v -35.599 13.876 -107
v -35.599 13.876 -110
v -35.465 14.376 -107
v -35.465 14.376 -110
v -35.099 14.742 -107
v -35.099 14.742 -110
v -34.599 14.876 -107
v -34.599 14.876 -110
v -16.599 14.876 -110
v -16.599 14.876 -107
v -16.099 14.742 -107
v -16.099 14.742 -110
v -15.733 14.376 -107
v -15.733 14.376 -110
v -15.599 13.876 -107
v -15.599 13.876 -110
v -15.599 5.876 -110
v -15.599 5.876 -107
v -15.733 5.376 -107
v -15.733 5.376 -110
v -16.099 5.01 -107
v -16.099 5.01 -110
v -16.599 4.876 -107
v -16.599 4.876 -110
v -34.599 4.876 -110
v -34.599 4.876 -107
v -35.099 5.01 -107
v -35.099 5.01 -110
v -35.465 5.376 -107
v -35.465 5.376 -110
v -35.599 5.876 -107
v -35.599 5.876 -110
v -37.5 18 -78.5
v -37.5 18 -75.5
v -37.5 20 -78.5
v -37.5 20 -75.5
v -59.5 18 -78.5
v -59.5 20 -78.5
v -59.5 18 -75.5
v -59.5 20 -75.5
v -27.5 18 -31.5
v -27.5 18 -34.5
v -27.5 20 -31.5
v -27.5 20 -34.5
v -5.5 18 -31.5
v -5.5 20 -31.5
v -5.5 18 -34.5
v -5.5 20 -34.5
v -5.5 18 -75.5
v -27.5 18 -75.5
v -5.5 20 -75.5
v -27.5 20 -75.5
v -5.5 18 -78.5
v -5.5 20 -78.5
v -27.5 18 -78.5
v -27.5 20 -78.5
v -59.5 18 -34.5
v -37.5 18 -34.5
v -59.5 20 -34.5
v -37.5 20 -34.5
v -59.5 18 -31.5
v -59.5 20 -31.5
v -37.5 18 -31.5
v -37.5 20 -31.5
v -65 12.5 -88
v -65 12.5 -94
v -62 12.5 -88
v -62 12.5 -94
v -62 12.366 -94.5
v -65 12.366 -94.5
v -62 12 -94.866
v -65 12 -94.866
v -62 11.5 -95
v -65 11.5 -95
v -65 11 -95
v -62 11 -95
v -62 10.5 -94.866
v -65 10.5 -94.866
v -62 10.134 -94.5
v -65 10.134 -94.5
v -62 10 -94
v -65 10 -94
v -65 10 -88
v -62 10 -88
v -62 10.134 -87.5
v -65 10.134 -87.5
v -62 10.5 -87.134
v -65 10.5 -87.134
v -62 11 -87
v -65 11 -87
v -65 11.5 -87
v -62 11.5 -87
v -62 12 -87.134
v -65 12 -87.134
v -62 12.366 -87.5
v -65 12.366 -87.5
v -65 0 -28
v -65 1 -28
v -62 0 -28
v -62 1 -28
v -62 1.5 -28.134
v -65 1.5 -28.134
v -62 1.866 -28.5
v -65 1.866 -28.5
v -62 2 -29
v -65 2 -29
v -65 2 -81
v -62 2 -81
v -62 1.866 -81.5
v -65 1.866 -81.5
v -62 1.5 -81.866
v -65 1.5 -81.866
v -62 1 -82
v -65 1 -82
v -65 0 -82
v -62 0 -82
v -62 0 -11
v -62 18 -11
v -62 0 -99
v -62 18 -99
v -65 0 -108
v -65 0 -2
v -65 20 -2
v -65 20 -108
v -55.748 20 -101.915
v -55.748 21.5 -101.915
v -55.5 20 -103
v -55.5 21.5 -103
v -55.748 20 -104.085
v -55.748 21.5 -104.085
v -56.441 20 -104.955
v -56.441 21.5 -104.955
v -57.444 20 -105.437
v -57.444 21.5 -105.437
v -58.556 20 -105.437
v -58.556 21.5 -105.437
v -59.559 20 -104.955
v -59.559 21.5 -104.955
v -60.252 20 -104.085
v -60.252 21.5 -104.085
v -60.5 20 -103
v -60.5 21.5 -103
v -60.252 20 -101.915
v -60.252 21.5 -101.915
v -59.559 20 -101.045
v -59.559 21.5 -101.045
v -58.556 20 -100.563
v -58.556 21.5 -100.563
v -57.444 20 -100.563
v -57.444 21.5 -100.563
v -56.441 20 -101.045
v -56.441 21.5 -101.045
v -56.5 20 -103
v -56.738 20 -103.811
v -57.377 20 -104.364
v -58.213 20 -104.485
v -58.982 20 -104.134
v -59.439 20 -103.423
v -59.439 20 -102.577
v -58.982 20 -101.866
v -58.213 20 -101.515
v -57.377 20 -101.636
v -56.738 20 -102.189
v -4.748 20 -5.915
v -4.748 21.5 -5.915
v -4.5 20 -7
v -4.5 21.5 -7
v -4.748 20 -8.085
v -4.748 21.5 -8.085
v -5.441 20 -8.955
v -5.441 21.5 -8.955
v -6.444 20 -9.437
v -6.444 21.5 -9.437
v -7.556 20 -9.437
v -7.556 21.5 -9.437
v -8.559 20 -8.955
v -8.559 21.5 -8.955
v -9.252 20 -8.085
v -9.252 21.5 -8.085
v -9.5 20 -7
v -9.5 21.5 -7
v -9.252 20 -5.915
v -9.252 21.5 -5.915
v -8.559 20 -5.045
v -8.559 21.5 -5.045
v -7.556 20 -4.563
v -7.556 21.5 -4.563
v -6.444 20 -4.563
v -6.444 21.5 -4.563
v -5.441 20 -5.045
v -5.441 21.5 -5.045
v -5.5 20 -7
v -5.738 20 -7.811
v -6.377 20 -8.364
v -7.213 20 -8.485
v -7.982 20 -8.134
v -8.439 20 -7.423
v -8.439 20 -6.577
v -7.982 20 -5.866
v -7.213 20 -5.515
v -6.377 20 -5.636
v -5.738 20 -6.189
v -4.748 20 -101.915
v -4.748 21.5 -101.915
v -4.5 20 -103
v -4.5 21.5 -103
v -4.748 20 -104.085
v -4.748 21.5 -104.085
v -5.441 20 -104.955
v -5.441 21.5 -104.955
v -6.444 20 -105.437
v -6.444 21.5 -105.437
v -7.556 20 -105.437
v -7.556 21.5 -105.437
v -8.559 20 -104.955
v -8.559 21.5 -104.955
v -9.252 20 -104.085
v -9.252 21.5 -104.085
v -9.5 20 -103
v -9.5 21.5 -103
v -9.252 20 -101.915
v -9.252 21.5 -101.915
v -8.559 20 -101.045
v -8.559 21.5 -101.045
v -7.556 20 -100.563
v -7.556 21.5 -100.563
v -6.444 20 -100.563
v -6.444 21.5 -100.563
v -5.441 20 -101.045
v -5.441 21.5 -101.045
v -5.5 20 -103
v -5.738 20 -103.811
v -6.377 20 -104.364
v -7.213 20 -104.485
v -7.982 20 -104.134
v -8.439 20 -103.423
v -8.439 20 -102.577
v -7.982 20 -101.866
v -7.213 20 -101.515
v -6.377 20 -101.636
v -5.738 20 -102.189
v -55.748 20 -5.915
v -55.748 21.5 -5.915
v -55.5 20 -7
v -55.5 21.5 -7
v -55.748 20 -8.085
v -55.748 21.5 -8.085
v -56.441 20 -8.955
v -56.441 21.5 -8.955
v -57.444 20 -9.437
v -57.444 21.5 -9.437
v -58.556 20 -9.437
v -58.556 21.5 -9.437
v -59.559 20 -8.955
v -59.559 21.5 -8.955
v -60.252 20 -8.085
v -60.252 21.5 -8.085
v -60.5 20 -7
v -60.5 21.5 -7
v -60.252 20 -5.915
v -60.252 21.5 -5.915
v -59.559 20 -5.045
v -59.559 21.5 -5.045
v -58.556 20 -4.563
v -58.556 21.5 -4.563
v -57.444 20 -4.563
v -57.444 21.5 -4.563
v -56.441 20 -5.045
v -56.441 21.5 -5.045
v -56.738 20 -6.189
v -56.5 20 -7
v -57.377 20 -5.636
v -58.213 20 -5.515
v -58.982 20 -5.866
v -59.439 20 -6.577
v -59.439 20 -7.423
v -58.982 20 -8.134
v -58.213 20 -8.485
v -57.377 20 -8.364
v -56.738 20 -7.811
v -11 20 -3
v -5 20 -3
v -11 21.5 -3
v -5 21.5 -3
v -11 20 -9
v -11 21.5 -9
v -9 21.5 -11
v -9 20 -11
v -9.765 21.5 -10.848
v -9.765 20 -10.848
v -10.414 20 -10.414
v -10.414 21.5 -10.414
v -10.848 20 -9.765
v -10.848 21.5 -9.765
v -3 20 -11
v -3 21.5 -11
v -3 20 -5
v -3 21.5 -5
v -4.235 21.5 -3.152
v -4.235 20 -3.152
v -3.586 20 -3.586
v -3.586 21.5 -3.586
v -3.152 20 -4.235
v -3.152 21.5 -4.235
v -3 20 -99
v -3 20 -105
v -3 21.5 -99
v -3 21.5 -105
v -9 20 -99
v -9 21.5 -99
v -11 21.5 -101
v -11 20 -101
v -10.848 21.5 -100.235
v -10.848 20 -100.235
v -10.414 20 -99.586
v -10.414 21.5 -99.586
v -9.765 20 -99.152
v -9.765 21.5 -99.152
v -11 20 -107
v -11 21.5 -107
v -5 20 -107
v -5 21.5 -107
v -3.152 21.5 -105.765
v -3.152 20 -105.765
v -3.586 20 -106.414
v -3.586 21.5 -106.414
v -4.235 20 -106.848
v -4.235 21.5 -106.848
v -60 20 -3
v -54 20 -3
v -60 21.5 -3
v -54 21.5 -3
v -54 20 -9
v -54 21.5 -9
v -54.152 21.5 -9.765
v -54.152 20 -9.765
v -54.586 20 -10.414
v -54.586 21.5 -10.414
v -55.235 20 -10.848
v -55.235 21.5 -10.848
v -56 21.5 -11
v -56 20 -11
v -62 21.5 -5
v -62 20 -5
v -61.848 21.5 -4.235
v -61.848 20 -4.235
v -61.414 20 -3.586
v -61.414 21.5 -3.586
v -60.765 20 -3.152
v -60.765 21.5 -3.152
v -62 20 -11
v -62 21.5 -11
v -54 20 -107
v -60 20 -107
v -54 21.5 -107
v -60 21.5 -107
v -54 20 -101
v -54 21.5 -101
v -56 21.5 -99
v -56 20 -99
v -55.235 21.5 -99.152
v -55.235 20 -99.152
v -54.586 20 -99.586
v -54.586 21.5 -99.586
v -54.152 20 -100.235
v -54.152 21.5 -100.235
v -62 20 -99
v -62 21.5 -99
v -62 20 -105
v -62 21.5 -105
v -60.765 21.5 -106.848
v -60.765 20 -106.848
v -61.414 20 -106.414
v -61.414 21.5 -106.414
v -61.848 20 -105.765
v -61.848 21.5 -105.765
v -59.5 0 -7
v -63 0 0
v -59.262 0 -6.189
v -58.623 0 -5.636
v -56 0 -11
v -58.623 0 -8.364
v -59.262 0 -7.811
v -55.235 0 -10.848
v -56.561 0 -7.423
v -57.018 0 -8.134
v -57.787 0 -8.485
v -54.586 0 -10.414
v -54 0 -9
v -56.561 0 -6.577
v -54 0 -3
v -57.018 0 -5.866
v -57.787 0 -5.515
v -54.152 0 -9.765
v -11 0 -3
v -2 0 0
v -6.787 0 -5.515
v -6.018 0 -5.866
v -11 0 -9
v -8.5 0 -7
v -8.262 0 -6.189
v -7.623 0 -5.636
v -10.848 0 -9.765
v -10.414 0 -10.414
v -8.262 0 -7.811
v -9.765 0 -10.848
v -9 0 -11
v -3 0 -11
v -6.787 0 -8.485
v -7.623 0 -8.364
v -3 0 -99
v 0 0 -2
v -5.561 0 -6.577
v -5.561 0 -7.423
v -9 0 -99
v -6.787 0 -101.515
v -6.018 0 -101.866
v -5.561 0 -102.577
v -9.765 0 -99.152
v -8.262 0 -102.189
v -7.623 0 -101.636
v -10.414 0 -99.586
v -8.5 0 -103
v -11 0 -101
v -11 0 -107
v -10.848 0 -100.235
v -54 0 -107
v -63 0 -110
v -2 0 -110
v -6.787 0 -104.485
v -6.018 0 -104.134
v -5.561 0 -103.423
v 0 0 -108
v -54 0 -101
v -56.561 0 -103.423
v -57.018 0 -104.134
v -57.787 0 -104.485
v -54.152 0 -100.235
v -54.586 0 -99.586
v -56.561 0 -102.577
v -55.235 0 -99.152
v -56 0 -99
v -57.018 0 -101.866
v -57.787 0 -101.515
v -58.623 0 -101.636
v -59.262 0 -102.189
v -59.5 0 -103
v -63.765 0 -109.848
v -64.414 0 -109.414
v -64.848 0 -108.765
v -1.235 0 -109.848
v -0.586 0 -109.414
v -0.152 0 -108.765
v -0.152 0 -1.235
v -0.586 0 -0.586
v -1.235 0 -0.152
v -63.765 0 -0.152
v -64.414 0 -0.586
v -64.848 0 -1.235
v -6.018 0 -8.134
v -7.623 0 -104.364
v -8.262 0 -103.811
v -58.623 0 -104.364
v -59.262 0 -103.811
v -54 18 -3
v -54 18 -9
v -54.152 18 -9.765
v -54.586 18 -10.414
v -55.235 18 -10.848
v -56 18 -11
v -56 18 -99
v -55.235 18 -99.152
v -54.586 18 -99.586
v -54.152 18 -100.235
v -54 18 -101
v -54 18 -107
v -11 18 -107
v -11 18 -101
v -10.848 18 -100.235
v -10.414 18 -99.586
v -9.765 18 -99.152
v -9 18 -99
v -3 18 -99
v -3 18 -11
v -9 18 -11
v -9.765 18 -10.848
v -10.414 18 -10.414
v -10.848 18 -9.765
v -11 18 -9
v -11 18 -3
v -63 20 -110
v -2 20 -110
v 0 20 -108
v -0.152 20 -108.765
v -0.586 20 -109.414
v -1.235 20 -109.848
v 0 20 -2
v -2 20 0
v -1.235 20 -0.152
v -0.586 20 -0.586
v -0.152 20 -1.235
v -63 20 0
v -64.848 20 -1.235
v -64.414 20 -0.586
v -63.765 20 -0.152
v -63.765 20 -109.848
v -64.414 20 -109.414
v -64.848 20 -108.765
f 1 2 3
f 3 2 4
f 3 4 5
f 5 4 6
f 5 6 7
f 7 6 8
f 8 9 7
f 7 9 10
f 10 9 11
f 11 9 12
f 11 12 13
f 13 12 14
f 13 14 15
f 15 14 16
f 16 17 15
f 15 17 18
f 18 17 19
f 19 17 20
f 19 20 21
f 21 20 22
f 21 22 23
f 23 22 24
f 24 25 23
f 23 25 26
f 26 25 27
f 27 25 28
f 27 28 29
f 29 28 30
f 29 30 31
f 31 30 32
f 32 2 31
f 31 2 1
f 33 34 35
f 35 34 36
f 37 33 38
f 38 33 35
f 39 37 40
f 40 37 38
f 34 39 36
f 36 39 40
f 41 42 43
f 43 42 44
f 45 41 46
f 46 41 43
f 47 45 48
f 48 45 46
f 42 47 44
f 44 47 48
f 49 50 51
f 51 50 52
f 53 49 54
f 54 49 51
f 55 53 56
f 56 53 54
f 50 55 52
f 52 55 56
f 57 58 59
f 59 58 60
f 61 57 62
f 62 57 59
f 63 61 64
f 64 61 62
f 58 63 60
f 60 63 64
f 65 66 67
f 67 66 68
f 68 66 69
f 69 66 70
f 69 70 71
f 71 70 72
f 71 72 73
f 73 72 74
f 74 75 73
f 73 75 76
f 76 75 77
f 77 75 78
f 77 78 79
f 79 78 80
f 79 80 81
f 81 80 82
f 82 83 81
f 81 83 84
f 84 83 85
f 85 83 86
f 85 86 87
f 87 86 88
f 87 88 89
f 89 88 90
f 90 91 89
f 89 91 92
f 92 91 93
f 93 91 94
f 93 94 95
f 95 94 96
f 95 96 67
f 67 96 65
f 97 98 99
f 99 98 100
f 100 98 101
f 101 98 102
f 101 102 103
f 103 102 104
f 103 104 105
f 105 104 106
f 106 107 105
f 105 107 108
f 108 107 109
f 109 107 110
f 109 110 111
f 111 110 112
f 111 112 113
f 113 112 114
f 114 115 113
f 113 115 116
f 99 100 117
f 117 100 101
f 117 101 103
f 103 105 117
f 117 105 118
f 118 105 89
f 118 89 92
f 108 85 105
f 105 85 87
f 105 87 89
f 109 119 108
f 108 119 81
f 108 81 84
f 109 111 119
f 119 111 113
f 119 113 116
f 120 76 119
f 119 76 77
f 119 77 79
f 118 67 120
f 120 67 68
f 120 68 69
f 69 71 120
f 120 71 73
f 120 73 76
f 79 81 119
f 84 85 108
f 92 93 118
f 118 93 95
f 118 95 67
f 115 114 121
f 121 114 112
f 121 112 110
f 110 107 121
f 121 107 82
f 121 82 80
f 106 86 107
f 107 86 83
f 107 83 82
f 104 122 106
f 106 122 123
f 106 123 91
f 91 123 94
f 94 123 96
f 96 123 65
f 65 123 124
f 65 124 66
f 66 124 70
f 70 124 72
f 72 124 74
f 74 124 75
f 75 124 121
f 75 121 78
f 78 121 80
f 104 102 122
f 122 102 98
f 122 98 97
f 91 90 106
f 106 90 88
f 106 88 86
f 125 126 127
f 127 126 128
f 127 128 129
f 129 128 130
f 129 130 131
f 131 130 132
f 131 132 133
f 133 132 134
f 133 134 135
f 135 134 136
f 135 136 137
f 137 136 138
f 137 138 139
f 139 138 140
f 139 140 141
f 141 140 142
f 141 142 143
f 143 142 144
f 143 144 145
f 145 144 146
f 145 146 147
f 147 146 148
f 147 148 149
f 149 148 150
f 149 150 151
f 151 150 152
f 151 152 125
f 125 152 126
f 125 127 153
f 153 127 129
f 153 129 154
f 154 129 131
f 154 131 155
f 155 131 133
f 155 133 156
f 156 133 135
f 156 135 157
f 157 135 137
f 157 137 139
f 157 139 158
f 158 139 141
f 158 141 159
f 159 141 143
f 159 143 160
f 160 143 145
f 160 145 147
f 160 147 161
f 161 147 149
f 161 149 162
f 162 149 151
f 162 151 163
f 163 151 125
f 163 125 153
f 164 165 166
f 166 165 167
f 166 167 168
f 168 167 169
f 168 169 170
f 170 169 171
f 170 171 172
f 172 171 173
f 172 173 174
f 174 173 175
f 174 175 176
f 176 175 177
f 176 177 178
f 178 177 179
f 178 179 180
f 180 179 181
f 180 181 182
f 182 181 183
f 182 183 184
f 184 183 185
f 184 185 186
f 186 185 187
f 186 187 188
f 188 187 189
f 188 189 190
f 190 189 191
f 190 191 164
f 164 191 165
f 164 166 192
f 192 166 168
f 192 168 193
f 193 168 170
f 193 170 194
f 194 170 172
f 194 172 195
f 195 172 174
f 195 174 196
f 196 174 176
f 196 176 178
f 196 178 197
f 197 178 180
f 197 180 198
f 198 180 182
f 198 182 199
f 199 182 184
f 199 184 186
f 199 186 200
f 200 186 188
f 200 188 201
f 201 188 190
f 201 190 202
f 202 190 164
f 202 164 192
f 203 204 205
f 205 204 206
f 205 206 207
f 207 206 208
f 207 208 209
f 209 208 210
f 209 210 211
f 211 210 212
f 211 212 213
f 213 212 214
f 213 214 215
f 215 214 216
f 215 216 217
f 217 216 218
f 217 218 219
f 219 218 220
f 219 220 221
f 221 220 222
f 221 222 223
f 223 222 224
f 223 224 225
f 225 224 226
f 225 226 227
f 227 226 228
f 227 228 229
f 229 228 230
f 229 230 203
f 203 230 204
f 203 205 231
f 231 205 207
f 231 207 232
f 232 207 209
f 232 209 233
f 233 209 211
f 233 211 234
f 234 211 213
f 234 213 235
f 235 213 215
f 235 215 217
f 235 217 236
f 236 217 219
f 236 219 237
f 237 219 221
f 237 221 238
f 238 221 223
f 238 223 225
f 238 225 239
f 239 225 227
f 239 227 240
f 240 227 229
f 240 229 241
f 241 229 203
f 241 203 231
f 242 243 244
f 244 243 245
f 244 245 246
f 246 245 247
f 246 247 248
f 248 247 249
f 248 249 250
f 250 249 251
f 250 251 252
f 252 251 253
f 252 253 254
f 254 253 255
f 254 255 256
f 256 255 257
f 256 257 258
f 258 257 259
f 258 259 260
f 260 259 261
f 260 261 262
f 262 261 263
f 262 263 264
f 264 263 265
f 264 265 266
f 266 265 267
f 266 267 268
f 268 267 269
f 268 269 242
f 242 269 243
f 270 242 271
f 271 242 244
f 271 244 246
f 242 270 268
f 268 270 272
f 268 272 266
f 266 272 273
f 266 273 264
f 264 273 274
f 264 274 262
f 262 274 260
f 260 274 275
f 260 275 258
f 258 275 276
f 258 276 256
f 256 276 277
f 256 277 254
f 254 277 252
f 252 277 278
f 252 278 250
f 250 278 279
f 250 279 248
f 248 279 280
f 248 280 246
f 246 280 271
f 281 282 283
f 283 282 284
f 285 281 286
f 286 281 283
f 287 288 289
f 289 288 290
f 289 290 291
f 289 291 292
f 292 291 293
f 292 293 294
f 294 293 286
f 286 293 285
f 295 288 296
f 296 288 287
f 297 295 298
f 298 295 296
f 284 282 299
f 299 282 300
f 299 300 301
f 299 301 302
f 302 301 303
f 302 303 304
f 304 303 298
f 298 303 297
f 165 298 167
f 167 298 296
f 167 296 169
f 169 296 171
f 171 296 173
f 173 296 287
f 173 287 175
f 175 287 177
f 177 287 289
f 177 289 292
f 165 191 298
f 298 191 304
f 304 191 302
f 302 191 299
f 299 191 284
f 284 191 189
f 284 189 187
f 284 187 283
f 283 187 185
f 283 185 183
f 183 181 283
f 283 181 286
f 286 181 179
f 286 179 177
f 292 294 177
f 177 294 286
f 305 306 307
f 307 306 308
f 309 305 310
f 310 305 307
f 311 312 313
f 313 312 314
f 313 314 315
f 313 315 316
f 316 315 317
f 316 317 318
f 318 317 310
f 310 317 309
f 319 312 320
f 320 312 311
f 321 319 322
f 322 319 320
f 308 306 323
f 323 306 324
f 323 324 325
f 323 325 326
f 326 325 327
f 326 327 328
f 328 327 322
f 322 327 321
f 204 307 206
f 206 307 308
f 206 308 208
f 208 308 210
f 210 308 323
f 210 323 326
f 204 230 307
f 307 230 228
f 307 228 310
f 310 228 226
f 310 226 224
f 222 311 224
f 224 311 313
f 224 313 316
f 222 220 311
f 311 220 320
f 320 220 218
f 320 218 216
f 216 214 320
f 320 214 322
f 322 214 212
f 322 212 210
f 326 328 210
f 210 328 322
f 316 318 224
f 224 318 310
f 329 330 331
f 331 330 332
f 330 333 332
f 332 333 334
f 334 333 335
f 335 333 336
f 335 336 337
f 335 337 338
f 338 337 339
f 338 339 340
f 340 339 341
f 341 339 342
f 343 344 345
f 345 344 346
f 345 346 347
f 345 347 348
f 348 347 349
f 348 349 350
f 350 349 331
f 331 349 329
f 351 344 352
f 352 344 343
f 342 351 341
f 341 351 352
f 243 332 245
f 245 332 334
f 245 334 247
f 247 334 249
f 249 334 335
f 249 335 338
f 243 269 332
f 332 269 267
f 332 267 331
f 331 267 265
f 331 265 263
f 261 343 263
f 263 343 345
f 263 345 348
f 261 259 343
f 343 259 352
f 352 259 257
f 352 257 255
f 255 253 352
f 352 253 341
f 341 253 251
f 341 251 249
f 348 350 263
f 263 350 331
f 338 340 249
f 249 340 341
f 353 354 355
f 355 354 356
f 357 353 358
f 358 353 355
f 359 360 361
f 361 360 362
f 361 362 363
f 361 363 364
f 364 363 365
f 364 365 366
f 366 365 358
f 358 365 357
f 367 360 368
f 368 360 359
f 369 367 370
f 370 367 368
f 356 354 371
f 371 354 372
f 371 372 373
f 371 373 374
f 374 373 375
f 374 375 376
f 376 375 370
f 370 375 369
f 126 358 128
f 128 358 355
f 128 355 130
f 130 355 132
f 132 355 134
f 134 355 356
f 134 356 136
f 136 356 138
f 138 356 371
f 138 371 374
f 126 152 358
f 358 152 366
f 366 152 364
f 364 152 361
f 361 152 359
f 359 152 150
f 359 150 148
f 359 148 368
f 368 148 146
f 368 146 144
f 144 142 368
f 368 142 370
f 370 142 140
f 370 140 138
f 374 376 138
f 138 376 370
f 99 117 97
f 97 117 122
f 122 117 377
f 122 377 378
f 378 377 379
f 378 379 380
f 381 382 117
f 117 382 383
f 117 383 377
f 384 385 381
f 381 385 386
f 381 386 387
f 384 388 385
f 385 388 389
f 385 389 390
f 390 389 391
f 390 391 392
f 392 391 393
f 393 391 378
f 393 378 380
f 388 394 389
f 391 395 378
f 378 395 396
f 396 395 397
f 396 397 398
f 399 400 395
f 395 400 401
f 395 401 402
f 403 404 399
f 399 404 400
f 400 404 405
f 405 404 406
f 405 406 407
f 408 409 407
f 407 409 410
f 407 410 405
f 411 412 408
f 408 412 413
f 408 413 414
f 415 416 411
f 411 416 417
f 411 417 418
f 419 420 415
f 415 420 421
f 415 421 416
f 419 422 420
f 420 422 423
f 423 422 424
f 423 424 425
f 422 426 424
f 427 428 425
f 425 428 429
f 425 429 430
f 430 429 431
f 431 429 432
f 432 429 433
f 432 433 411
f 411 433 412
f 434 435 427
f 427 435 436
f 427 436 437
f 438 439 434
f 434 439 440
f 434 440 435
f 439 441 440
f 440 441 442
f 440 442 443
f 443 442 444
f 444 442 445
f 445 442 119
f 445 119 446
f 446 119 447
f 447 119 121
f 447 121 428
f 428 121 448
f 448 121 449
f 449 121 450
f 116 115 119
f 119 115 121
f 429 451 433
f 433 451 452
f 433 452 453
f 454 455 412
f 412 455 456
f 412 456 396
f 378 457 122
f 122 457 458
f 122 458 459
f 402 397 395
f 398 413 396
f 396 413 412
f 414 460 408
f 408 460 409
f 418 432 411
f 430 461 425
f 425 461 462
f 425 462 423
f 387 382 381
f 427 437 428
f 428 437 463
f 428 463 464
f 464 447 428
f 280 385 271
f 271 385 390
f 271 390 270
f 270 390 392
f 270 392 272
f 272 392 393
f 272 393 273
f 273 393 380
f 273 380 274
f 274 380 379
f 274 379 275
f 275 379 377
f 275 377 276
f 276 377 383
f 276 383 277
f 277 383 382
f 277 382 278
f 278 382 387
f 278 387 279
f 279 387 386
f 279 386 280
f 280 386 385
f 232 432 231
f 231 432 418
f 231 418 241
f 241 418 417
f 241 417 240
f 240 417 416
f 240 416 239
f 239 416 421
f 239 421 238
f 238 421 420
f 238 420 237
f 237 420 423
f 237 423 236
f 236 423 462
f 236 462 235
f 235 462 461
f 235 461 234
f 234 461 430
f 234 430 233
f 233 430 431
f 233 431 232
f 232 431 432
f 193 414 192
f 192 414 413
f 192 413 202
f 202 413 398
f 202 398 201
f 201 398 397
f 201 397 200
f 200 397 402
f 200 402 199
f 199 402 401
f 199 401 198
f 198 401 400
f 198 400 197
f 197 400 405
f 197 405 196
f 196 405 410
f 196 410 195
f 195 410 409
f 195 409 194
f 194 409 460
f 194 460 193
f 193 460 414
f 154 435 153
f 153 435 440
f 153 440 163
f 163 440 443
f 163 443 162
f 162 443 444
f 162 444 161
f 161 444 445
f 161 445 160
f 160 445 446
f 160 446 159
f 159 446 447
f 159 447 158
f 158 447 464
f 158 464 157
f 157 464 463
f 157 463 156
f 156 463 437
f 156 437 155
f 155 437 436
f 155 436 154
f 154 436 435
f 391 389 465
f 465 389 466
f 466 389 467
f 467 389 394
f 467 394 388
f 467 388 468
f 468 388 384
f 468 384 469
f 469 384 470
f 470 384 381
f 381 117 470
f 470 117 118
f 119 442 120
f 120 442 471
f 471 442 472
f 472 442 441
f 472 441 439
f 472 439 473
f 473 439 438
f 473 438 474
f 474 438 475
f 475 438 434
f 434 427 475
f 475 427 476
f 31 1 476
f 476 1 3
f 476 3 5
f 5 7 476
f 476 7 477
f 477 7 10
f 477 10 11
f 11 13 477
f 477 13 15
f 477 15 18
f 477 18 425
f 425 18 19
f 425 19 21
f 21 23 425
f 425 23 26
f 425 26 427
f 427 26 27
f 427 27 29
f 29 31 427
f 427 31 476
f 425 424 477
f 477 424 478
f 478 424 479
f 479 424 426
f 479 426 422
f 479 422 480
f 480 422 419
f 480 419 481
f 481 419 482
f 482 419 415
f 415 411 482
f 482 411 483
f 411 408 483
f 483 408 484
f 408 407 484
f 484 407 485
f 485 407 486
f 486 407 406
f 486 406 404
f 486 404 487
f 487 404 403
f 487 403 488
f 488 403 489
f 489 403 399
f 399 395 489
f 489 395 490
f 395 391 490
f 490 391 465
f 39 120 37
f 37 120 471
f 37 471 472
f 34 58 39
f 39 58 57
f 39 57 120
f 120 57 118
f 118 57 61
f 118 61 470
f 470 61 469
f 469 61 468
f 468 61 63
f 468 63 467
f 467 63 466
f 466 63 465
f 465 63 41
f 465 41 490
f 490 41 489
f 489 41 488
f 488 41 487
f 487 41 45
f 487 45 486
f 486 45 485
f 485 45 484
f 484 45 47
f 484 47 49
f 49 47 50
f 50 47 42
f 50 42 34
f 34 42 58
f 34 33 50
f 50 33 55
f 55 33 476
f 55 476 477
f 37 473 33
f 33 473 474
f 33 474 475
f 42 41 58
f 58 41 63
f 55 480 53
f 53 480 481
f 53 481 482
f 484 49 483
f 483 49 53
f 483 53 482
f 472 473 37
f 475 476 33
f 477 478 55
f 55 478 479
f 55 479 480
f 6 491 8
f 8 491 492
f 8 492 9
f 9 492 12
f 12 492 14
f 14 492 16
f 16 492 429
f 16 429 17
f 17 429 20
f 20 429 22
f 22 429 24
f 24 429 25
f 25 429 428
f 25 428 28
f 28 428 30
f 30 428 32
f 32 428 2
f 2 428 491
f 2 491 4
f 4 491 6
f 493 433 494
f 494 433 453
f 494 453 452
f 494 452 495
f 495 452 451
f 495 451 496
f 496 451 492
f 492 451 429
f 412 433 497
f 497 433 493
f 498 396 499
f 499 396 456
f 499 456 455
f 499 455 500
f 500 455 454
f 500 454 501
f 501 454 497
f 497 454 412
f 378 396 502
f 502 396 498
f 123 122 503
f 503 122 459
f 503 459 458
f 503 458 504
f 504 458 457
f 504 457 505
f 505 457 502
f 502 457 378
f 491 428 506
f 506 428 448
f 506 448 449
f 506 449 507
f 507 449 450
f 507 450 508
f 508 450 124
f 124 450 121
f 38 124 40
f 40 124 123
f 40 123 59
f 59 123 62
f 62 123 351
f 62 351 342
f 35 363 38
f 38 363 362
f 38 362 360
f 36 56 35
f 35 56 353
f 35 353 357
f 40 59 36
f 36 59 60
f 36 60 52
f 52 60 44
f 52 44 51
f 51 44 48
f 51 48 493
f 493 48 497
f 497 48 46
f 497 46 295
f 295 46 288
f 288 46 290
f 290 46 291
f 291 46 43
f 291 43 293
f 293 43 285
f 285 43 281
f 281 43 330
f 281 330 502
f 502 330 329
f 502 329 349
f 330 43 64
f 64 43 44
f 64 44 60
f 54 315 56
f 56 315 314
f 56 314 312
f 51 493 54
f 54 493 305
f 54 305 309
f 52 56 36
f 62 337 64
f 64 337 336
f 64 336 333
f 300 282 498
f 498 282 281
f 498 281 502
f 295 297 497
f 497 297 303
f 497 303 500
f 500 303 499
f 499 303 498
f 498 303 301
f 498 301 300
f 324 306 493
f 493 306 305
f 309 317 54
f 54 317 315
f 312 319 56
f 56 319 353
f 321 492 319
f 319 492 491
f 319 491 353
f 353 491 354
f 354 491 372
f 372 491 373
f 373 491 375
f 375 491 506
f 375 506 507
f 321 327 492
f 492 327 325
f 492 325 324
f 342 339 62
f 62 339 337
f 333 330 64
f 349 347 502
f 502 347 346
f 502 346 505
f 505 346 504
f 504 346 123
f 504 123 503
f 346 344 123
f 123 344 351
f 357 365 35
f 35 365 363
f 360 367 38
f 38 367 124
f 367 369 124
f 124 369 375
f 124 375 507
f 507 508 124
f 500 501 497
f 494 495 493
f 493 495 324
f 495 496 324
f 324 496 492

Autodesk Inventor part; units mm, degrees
ref_plane "YZ Plane" through (0, 0, 0) normal (1, 0, 0) x (0, 1, 0)
ref_plane "XZ Plane" through (0, 0, 0) normal (0, 1, 0) x (-1, 0, 0)
ref_plane "XY Plane" through (0, 0, 0) normal (0, 0, 1) x (1, 0, 0)
sketch "Sketch1" plane through (0, 0, 0) normal (0, 1, 0) x (-1, 0, 0)
  line L0 (0, -2) -> (0, -108)
  line L1 (2, -110) -> (63, -110)
  line L2 (2, 0) -> (63, 0)
  line L3 (65, -2) -> (65, -108)
  line L4 (0, 0) -> (0, -3)
  line L5 (65, 0) -> (57, 0)
  line L6 (0, -110) -> (0, -107)
  line L7 (0, 0) -> (3, 0)
  arc A0 (65, -2) -> (63, 0) centre (63, -2) ccw
  arc A1 (2, 0) -> (0, -2) centre (2, -2) ccw
  arc A2 (0, -108) -> (2, -110) centre (2, -108) ccw
  arc A3 (63, -110) -> (65, -108) centre (63, -108) ccw
  arc A4 (5, -3) -> (3, -5) centre (5, -5) ccw
  circle A5 centre (7, -7) radius 1.5
  line L8 (11, -3) -> (11, -9)
  line L9 (9, -11) -> (3, -11)
  arc A6 (9, -11) -> (11, -9) centre (9, -9) ccw
  line L10 (3, -5) -> (3, -11)
  arc A7 (3, -105) -> (5, -107) centre (5, -105) ccw
  circle A8 centre (7, -103) radius 1.5
  line L11 (11, -107) -> (11, -101)
  line L12 (9, -99) -> (3, -99)
  arc A9 (11, -101) -> (9, -99) centre (9, -101) ccw
  line L13 (3, -105) -> (3, -99)
  line L14 (3, -11) -> (3, -99)
  line L15 (11, -107) -> (5, -107)
  line L16 (11, -3) -> (5, -3)
  arc A10 (62, -5) -> (60, -3) centre (60, -5) ccw
  circle A11 centre (58, -7) radius 1.5
  line L17 (54, -3) -> (54, -9)
  line L18 (56, -11) -> (62, -11)
  arc A12 (54, -9) -> (56, -11) centre (56, -9) ccw
  line L19 (62, -5) -> (62, -11)
  arc A13 (56, -99) -> (54, -101) centre (56, -101) ccw
  circle A14 centre (58, -103) radius 1.5
  line L20 (56, -99) -> (62, -99)
  line L21 (62, -105) -> (62, -99)
  arc A15 (60, -107) -> (62, -105) centre (60, -105) ccw
  line L22 (54, -107) -> (54, -101)
  line L23 (62, -11) -> (62, -99)
  line L24 (54, -107) -> (60, -107)
  line L25 (54, -3) -> (60, -3)
  line L26 (54, -107) -> (11, -107)
  line L27 (54, -3) -> (11, -3)
  point P0 (65, -110)
  point P1 (55, -5)
  point P2 (55, -105)
  dimension "d0" = 110
  dimension "d1" = 65
  dimension "d2" = 3
  dimension "d4" = 3
  dimension "d5" = 3
  dimension "d8" = 2
extrude "Extrusion18" add sketch "Sketch1" along normal blind 20 contours A1 L2 A0 L3 A3 L1 A2 L0 | L16 L8 A6 L9 L10 A4 | L27 L17 A12 L18 L23 L20 A13 L22 L26 L11 A9 L12 L14 L9 A6 L8 | L25 A10 L19 L18 A12 L17 | L12 A9 L11 L15 A7 L13 | L21 A15 L24 L22 A13 L20 | A5 | A8 | A11 | A14
extrude "Extrusion19" cut sketch "Sketch1" along normal blind 18 contours L27 L17 A12 L18 L23 L20 A13 L22 L26 L11 A9 L12 L14 L9 A6 L8
extrude "Extrusion20" cut sketch "Sketch1" along normal blind 20 contours A5 | A8 | A11 | A14
extrude "Extrusion21" add sketch "Sketch1" along normal blind 21.5 contours L16 L8 A6 L9 L10 A4 | L25 A10 L19 L18 A12 L17 | L12 A9 L11 L15 A7 L13 | L21 A15 L24 L22 A13 L20
sketch "Sketch11" plane through (0, 21.5, 0) normal (0, 1, 0) x (1, 0, 0)
  circle A0 centre (-7, 7) radius 1.5 projected
  circle A1 centre (-7, 7) radius 2.5
  circle A2 centre (-7, 103) radius 1.5 projected
  circle A3 centre (-7, 103) radius 2.5
  circle A4 centre (-58, 103) radius 1.5 projected
  circle A5 centre (-58, 103) radius 2.5
  circle A6 centre (-58, 7) radius 1.5 projected
  circle A7 centre (-58, 7) radius 2.5
  point P0 (0, 0)
  dimension "d166" = 5
  dimension "d167" = 5
  dimension "d168" = 5
  dimension "d169" = 5
extrude "Extrusion22" cut sketch "Sketch11" against normal blind 1.5 contours A1 | A3 | A5 | A6 | A7
sketch "Sketch12" plane through (-65, 0, -108) normal (-1, 0, 0) x (0, 0, 1)
  line L0 (99, 0) -> (99, 18) projected
  line L1 (7, 0) -> (7, 18) projected
  line L2 (99, 0) -> (7, 0)
  line L3 (97, 0) -> (9, 0) projected
  line L4 (53, 2) -> (27, 2)
  line L5 (53, 2) -> (79, 2)
  line L6 (80, 1) -> (80, 0)
  line L7 (26, 1) -> (26, 0)
  line L8 (20, 10) -> (14, 10)
  line L9 (13, 11) -> (13, 11.5)
  line L10 (21, 11) -> (21, 11.5)
  line L11 (20, 12.5) -> (14, 12.5)
  arc A0 (80, 1) -> (79, 2) centre (79, 1) ccw
  arc A1 (27, 2) -> (26, 1) centre (27, 1) ccw
  arc A2 (20, 10) -> (21, 11) centre (20, 11) ccw
  arc A3 (21, 11.5) -> (20, 12.5) centre (20, 11.5) ccw
  arc A4 (14, 12.5) -> (13, 11.5) centre (14, 11.5) ccw
  arc A5 (13, 11) -> (14, 10) centre (14, 11) ccw
  point P0 (108, 0)
  point P1 (26, 2)
  point P2 (80, 2)
  point P3 (21, 10)
  point P4 (13, 10)
  point P5 (13, 12.5)
  dimension "d173" = 27
  dimension "d174" = 27
  dimension "d179" = 8
  dimension "d180" = 2.5
  dimension "d181" = 1
  dimension "d182" = 1
extrude "Extrusion23" cut sketch "Sketch12" against normal blind 3
sketch "Sketch13" plane through (0, 20, 0) normal (0, 1, 0) x (1, 0, 0)
  line L0 (-62, 11) -> (-56, 11) projected
  line L1 (-3, 99) -> (-9, 99) projected
  line L2 (-62, 99) -> (-3, 99)
  line L3 (-3, 11) -> (-3, 99) projected
  line L4 (-3, 99) -> (-3, 11)
  line L5 (-3, 11) -> (-62, 11)
  line L6 (-62, 55) -> (-3, 55)
  line L7 (-62, 55) -> (-62, 11)
  line L8 (-62, 29) -> (-62, 81) projected
  line L9 (-3, 55) -> (-62, 55)
  line L10 (-37.5, 34.5) -> (-59.5, 34.5)
  line L11 (-59.5, 34.5) -> (-59.5, 31.5)
  line L12 (-59.5, 31.5) -> (-37.5, 31.5)
  line L13 (-37.5, 31.5) -> (-37.5, 34.5)
  line L14 (-27.5, 34.5) -> (-5.5, 34.5)
  line L15 (-5.5, 34.5) -> (-5.5, 31.5)
  line L16 (-5.5, 31.5) -> (-27.5, 31.5)
  line L17 (-27.5, 31.5) -> (-27.5, 34.5)
  line L18 (-37.5, 75.5) -> (-59.5, 75.5)
  line L19 (-59.5, 75.5) -> (-59.5, 78.5)
  line L20 (-59.5, 78.5) -> (-37.5, 78.5)
  line L21 (-37.5, 78.5) -> (-37.5, 75.5)
  line L22 (-27.5, 75.5) -> (-5.5, 75.5)
  line L23 (-5.5, 75.5) -> (-5.5, 78.5)
  line L24 (-5.5, 78.5) -> (-27.5, 78.5)
  line L25 (-27.5, 78.5) -> (-27.5, 75.5)
  point P0 (0, 0)
  dimension "d202" = 22
  dimension "d203" = 3
extrude "Extrusion24" cut sketch "Sketch13" against normal blind 3 contours L13 L12 L11 L10 | L14 L15 L16 L17 | L18 L19 L20 L21 | L25 L24 L23 L22
sketch "Sketch14" plane through (-2, 0, -110) normal (0, 0, -1) x (-1, 0, 0)
  line L0 (0, 0) -> (61, 0) projected
  line L1 (7, 0) -> (7, 18) projected
  line L2 (13.5993, 5.8762) -> (13.5993, 13.8762)
  line L3 (14.5993, 14.8762) -> (32.5993, 14.8762)
  line L4 (33.5993, 13.8762) -> (33.5993, 5.8762)
  line L5 (32.5993, 4.8762) -> (14.5993, 4.8762)
  arc A0 (32.5993, 4.8762) -> (33.5993, 5.8762) centre (32.5993, 5.8762) ccw
  arc A1 (13.5993, 5.8762) -> (14.5993, 4.8762) centre (14.5993, 5.8762) ccw
  arc A2 (14.5993, 14.8762) -> (13.5993, 13.8762) centre (14.5993, 13.8762) ccw
  arc A3 (33.5993, 13.8762) -> (32.5993, 14.8762) centre (32.5993, 13.8762) ccw
  point P0 (-2, 0)
  point P1 (13.5993, 4.8762)
  point P2 (13.5993, 14.8762)
  point P3 (33.5993, 14.8762)
  dimension "d194" = 10
  dimension "d195" = 20
  dimension "d196" = 1
extrude "Extrusion25" cut sketch "Sketch14" against normal blind 3
properties part number "Part 2 edit"
